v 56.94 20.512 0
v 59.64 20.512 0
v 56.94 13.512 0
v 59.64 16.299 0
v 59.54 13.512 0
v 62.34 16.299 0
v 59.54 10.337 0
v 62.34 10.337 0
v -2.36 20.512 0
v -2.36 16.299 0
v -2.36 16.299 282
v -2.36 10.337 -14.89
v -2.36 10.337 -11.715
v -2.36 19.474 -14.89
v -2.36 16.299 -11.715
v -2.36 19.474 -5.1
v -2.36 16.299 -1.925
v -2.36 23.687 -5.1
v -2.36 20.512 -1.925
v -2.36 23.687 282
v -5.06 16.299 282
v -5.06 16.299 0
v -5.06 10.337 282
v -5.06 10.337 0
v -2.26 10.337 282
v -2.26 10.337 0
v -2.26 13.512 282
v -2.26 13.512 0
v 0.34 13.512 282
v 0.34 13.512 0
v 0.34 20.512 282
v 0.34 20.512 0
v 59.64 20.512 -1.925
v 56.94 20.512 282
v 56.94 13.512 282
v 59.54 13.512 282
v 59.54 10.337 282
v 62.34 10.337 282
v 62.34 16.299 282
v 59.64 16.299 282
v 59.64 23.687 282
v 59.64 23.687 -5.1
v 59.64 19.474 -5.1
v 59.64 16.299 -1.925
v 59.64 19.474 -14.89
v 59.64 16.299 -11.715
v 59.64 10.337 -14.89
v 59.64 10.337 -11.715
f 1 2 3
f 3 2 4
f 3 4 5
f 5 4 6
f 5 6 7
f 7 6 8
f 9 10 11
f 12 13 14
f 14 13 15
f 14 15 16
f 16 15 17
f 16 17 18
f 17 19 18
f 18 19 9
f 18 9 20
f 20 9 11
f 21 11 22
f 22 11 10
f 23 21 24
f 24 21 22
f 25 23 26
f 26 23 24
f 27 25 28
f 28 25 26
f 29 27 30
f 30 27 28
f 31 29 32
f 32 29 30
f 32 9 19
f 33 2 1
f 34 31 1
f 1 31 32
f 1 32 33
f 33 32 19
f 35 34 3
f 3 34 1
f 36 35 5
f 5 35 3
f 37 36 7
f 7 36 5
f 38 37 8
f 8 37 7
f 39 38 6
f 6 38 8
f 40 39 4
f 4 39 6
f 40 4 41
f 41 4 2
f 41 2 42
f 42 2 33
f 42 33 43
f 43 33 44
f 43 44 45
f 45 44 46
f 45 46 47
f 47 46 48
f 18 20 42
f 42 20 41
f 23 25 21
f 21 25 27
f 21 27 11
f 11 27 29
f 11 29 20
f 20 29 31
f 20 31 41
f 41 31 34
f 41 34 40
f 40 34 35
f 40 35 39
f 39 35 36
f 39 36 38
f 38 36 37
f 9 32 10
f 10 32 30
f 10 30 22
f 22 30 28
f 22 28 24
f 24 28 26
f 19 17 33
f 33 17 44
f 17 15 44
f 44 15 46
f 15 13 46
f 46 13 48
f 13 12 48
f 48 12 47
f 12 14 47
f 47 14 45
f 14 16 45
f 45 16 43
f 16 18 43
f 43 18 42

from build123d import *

# Parameters (mm, degrees)
BOSS_EXTRUDE1_DEPTH = 282
BOSS_EXTRUDE2_DEPTH = 62


with BuildPart() as part:
    # Sketch1 → Boss-Extrude1 (new body)
    with BuildSketch(Plane.XY):
        Polygon((-2.36, 23.687204572), (59.64, 23.687204572), (59.64, 16.298774949), (62.34, 16.298774949), (62.34, 10.337204572), (59.54, 10.337204572), (59.54, 13.512204572), (56.94, 13.512204572), (56.94, 20.512204572), (0.34, 20.512204572), (0.34, 13.512204572), (-2.26, 13.512204572), (-2.26, 10.337204572), (-5.06, 10.337204572), (-5.06, 16.298774949), (-2.36, 16.298774949), align=None)
    extrude(amount=BOSS_EXTRUDE1_DEPTH)

    # Sketch5 → Boss-Extrude2 (add)
    with BuildSketch(Plane.ZY.offset(2.36)):
        Polygon((0, 23.687204572), (-5.1, 23.687204572), (-5.1, 19.473774949), (-14.890029998, 19.473774949), (-14.890029998, 10.337204572), (-11.715029998, 10.337204572), (-11.715029998, 16.298774949), (-1.925, 16.298774949), (-1.925, 20.512204572), (0, 20.512204572), align=None)
    extrude(amount=-BOSS_EXTRUDE2_DEPTH)


solid = part.part
